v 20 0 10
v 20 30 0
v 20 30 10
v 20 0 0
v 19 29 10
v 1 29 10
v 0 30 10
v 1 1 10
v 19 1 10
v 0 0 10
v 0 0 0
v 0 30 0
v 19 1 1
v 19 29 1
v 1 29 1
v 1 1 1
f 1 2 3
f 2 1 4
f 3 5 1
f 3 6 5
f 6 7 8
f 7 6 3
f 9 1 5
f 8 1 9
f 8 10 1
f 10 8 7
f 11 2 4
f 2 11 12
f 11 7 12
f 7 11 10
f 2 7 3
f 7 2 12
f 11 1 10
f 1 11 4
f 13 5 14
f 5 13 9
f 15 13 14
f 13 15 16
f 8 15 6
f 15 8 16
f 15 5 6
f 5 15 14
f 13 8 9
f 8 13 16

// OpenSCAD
$fn=200;

length = 30;
width= 20;
height = 10;
cornerRadius = 0;


    difference() {
            roundedBox(length, width, height, cornerRadius); 
            translate([1,1,1]) {
                roundedBox(length-2, width-2, height-1, cornerRadius); 
            }
    }


module roundedBox(length, width, height, radius)
{
    dRadius = 2*radius;

    //cube bottom right
    translate([width-dRadius,-radius,0]) {
        cube(size=[radius,radius,height+0.01]);
    }

    //cube top left
    translate([-radius,length-dRadius,0]) {
        cube(size=[radius,radius,height+0.01]);
    }

    //base rounded shape
    minkowski() {
        cube(size=[width-dRadius,length-dRadius, height]);
        cylinder(r=radius, h=0.01);
    }
  
    
}
